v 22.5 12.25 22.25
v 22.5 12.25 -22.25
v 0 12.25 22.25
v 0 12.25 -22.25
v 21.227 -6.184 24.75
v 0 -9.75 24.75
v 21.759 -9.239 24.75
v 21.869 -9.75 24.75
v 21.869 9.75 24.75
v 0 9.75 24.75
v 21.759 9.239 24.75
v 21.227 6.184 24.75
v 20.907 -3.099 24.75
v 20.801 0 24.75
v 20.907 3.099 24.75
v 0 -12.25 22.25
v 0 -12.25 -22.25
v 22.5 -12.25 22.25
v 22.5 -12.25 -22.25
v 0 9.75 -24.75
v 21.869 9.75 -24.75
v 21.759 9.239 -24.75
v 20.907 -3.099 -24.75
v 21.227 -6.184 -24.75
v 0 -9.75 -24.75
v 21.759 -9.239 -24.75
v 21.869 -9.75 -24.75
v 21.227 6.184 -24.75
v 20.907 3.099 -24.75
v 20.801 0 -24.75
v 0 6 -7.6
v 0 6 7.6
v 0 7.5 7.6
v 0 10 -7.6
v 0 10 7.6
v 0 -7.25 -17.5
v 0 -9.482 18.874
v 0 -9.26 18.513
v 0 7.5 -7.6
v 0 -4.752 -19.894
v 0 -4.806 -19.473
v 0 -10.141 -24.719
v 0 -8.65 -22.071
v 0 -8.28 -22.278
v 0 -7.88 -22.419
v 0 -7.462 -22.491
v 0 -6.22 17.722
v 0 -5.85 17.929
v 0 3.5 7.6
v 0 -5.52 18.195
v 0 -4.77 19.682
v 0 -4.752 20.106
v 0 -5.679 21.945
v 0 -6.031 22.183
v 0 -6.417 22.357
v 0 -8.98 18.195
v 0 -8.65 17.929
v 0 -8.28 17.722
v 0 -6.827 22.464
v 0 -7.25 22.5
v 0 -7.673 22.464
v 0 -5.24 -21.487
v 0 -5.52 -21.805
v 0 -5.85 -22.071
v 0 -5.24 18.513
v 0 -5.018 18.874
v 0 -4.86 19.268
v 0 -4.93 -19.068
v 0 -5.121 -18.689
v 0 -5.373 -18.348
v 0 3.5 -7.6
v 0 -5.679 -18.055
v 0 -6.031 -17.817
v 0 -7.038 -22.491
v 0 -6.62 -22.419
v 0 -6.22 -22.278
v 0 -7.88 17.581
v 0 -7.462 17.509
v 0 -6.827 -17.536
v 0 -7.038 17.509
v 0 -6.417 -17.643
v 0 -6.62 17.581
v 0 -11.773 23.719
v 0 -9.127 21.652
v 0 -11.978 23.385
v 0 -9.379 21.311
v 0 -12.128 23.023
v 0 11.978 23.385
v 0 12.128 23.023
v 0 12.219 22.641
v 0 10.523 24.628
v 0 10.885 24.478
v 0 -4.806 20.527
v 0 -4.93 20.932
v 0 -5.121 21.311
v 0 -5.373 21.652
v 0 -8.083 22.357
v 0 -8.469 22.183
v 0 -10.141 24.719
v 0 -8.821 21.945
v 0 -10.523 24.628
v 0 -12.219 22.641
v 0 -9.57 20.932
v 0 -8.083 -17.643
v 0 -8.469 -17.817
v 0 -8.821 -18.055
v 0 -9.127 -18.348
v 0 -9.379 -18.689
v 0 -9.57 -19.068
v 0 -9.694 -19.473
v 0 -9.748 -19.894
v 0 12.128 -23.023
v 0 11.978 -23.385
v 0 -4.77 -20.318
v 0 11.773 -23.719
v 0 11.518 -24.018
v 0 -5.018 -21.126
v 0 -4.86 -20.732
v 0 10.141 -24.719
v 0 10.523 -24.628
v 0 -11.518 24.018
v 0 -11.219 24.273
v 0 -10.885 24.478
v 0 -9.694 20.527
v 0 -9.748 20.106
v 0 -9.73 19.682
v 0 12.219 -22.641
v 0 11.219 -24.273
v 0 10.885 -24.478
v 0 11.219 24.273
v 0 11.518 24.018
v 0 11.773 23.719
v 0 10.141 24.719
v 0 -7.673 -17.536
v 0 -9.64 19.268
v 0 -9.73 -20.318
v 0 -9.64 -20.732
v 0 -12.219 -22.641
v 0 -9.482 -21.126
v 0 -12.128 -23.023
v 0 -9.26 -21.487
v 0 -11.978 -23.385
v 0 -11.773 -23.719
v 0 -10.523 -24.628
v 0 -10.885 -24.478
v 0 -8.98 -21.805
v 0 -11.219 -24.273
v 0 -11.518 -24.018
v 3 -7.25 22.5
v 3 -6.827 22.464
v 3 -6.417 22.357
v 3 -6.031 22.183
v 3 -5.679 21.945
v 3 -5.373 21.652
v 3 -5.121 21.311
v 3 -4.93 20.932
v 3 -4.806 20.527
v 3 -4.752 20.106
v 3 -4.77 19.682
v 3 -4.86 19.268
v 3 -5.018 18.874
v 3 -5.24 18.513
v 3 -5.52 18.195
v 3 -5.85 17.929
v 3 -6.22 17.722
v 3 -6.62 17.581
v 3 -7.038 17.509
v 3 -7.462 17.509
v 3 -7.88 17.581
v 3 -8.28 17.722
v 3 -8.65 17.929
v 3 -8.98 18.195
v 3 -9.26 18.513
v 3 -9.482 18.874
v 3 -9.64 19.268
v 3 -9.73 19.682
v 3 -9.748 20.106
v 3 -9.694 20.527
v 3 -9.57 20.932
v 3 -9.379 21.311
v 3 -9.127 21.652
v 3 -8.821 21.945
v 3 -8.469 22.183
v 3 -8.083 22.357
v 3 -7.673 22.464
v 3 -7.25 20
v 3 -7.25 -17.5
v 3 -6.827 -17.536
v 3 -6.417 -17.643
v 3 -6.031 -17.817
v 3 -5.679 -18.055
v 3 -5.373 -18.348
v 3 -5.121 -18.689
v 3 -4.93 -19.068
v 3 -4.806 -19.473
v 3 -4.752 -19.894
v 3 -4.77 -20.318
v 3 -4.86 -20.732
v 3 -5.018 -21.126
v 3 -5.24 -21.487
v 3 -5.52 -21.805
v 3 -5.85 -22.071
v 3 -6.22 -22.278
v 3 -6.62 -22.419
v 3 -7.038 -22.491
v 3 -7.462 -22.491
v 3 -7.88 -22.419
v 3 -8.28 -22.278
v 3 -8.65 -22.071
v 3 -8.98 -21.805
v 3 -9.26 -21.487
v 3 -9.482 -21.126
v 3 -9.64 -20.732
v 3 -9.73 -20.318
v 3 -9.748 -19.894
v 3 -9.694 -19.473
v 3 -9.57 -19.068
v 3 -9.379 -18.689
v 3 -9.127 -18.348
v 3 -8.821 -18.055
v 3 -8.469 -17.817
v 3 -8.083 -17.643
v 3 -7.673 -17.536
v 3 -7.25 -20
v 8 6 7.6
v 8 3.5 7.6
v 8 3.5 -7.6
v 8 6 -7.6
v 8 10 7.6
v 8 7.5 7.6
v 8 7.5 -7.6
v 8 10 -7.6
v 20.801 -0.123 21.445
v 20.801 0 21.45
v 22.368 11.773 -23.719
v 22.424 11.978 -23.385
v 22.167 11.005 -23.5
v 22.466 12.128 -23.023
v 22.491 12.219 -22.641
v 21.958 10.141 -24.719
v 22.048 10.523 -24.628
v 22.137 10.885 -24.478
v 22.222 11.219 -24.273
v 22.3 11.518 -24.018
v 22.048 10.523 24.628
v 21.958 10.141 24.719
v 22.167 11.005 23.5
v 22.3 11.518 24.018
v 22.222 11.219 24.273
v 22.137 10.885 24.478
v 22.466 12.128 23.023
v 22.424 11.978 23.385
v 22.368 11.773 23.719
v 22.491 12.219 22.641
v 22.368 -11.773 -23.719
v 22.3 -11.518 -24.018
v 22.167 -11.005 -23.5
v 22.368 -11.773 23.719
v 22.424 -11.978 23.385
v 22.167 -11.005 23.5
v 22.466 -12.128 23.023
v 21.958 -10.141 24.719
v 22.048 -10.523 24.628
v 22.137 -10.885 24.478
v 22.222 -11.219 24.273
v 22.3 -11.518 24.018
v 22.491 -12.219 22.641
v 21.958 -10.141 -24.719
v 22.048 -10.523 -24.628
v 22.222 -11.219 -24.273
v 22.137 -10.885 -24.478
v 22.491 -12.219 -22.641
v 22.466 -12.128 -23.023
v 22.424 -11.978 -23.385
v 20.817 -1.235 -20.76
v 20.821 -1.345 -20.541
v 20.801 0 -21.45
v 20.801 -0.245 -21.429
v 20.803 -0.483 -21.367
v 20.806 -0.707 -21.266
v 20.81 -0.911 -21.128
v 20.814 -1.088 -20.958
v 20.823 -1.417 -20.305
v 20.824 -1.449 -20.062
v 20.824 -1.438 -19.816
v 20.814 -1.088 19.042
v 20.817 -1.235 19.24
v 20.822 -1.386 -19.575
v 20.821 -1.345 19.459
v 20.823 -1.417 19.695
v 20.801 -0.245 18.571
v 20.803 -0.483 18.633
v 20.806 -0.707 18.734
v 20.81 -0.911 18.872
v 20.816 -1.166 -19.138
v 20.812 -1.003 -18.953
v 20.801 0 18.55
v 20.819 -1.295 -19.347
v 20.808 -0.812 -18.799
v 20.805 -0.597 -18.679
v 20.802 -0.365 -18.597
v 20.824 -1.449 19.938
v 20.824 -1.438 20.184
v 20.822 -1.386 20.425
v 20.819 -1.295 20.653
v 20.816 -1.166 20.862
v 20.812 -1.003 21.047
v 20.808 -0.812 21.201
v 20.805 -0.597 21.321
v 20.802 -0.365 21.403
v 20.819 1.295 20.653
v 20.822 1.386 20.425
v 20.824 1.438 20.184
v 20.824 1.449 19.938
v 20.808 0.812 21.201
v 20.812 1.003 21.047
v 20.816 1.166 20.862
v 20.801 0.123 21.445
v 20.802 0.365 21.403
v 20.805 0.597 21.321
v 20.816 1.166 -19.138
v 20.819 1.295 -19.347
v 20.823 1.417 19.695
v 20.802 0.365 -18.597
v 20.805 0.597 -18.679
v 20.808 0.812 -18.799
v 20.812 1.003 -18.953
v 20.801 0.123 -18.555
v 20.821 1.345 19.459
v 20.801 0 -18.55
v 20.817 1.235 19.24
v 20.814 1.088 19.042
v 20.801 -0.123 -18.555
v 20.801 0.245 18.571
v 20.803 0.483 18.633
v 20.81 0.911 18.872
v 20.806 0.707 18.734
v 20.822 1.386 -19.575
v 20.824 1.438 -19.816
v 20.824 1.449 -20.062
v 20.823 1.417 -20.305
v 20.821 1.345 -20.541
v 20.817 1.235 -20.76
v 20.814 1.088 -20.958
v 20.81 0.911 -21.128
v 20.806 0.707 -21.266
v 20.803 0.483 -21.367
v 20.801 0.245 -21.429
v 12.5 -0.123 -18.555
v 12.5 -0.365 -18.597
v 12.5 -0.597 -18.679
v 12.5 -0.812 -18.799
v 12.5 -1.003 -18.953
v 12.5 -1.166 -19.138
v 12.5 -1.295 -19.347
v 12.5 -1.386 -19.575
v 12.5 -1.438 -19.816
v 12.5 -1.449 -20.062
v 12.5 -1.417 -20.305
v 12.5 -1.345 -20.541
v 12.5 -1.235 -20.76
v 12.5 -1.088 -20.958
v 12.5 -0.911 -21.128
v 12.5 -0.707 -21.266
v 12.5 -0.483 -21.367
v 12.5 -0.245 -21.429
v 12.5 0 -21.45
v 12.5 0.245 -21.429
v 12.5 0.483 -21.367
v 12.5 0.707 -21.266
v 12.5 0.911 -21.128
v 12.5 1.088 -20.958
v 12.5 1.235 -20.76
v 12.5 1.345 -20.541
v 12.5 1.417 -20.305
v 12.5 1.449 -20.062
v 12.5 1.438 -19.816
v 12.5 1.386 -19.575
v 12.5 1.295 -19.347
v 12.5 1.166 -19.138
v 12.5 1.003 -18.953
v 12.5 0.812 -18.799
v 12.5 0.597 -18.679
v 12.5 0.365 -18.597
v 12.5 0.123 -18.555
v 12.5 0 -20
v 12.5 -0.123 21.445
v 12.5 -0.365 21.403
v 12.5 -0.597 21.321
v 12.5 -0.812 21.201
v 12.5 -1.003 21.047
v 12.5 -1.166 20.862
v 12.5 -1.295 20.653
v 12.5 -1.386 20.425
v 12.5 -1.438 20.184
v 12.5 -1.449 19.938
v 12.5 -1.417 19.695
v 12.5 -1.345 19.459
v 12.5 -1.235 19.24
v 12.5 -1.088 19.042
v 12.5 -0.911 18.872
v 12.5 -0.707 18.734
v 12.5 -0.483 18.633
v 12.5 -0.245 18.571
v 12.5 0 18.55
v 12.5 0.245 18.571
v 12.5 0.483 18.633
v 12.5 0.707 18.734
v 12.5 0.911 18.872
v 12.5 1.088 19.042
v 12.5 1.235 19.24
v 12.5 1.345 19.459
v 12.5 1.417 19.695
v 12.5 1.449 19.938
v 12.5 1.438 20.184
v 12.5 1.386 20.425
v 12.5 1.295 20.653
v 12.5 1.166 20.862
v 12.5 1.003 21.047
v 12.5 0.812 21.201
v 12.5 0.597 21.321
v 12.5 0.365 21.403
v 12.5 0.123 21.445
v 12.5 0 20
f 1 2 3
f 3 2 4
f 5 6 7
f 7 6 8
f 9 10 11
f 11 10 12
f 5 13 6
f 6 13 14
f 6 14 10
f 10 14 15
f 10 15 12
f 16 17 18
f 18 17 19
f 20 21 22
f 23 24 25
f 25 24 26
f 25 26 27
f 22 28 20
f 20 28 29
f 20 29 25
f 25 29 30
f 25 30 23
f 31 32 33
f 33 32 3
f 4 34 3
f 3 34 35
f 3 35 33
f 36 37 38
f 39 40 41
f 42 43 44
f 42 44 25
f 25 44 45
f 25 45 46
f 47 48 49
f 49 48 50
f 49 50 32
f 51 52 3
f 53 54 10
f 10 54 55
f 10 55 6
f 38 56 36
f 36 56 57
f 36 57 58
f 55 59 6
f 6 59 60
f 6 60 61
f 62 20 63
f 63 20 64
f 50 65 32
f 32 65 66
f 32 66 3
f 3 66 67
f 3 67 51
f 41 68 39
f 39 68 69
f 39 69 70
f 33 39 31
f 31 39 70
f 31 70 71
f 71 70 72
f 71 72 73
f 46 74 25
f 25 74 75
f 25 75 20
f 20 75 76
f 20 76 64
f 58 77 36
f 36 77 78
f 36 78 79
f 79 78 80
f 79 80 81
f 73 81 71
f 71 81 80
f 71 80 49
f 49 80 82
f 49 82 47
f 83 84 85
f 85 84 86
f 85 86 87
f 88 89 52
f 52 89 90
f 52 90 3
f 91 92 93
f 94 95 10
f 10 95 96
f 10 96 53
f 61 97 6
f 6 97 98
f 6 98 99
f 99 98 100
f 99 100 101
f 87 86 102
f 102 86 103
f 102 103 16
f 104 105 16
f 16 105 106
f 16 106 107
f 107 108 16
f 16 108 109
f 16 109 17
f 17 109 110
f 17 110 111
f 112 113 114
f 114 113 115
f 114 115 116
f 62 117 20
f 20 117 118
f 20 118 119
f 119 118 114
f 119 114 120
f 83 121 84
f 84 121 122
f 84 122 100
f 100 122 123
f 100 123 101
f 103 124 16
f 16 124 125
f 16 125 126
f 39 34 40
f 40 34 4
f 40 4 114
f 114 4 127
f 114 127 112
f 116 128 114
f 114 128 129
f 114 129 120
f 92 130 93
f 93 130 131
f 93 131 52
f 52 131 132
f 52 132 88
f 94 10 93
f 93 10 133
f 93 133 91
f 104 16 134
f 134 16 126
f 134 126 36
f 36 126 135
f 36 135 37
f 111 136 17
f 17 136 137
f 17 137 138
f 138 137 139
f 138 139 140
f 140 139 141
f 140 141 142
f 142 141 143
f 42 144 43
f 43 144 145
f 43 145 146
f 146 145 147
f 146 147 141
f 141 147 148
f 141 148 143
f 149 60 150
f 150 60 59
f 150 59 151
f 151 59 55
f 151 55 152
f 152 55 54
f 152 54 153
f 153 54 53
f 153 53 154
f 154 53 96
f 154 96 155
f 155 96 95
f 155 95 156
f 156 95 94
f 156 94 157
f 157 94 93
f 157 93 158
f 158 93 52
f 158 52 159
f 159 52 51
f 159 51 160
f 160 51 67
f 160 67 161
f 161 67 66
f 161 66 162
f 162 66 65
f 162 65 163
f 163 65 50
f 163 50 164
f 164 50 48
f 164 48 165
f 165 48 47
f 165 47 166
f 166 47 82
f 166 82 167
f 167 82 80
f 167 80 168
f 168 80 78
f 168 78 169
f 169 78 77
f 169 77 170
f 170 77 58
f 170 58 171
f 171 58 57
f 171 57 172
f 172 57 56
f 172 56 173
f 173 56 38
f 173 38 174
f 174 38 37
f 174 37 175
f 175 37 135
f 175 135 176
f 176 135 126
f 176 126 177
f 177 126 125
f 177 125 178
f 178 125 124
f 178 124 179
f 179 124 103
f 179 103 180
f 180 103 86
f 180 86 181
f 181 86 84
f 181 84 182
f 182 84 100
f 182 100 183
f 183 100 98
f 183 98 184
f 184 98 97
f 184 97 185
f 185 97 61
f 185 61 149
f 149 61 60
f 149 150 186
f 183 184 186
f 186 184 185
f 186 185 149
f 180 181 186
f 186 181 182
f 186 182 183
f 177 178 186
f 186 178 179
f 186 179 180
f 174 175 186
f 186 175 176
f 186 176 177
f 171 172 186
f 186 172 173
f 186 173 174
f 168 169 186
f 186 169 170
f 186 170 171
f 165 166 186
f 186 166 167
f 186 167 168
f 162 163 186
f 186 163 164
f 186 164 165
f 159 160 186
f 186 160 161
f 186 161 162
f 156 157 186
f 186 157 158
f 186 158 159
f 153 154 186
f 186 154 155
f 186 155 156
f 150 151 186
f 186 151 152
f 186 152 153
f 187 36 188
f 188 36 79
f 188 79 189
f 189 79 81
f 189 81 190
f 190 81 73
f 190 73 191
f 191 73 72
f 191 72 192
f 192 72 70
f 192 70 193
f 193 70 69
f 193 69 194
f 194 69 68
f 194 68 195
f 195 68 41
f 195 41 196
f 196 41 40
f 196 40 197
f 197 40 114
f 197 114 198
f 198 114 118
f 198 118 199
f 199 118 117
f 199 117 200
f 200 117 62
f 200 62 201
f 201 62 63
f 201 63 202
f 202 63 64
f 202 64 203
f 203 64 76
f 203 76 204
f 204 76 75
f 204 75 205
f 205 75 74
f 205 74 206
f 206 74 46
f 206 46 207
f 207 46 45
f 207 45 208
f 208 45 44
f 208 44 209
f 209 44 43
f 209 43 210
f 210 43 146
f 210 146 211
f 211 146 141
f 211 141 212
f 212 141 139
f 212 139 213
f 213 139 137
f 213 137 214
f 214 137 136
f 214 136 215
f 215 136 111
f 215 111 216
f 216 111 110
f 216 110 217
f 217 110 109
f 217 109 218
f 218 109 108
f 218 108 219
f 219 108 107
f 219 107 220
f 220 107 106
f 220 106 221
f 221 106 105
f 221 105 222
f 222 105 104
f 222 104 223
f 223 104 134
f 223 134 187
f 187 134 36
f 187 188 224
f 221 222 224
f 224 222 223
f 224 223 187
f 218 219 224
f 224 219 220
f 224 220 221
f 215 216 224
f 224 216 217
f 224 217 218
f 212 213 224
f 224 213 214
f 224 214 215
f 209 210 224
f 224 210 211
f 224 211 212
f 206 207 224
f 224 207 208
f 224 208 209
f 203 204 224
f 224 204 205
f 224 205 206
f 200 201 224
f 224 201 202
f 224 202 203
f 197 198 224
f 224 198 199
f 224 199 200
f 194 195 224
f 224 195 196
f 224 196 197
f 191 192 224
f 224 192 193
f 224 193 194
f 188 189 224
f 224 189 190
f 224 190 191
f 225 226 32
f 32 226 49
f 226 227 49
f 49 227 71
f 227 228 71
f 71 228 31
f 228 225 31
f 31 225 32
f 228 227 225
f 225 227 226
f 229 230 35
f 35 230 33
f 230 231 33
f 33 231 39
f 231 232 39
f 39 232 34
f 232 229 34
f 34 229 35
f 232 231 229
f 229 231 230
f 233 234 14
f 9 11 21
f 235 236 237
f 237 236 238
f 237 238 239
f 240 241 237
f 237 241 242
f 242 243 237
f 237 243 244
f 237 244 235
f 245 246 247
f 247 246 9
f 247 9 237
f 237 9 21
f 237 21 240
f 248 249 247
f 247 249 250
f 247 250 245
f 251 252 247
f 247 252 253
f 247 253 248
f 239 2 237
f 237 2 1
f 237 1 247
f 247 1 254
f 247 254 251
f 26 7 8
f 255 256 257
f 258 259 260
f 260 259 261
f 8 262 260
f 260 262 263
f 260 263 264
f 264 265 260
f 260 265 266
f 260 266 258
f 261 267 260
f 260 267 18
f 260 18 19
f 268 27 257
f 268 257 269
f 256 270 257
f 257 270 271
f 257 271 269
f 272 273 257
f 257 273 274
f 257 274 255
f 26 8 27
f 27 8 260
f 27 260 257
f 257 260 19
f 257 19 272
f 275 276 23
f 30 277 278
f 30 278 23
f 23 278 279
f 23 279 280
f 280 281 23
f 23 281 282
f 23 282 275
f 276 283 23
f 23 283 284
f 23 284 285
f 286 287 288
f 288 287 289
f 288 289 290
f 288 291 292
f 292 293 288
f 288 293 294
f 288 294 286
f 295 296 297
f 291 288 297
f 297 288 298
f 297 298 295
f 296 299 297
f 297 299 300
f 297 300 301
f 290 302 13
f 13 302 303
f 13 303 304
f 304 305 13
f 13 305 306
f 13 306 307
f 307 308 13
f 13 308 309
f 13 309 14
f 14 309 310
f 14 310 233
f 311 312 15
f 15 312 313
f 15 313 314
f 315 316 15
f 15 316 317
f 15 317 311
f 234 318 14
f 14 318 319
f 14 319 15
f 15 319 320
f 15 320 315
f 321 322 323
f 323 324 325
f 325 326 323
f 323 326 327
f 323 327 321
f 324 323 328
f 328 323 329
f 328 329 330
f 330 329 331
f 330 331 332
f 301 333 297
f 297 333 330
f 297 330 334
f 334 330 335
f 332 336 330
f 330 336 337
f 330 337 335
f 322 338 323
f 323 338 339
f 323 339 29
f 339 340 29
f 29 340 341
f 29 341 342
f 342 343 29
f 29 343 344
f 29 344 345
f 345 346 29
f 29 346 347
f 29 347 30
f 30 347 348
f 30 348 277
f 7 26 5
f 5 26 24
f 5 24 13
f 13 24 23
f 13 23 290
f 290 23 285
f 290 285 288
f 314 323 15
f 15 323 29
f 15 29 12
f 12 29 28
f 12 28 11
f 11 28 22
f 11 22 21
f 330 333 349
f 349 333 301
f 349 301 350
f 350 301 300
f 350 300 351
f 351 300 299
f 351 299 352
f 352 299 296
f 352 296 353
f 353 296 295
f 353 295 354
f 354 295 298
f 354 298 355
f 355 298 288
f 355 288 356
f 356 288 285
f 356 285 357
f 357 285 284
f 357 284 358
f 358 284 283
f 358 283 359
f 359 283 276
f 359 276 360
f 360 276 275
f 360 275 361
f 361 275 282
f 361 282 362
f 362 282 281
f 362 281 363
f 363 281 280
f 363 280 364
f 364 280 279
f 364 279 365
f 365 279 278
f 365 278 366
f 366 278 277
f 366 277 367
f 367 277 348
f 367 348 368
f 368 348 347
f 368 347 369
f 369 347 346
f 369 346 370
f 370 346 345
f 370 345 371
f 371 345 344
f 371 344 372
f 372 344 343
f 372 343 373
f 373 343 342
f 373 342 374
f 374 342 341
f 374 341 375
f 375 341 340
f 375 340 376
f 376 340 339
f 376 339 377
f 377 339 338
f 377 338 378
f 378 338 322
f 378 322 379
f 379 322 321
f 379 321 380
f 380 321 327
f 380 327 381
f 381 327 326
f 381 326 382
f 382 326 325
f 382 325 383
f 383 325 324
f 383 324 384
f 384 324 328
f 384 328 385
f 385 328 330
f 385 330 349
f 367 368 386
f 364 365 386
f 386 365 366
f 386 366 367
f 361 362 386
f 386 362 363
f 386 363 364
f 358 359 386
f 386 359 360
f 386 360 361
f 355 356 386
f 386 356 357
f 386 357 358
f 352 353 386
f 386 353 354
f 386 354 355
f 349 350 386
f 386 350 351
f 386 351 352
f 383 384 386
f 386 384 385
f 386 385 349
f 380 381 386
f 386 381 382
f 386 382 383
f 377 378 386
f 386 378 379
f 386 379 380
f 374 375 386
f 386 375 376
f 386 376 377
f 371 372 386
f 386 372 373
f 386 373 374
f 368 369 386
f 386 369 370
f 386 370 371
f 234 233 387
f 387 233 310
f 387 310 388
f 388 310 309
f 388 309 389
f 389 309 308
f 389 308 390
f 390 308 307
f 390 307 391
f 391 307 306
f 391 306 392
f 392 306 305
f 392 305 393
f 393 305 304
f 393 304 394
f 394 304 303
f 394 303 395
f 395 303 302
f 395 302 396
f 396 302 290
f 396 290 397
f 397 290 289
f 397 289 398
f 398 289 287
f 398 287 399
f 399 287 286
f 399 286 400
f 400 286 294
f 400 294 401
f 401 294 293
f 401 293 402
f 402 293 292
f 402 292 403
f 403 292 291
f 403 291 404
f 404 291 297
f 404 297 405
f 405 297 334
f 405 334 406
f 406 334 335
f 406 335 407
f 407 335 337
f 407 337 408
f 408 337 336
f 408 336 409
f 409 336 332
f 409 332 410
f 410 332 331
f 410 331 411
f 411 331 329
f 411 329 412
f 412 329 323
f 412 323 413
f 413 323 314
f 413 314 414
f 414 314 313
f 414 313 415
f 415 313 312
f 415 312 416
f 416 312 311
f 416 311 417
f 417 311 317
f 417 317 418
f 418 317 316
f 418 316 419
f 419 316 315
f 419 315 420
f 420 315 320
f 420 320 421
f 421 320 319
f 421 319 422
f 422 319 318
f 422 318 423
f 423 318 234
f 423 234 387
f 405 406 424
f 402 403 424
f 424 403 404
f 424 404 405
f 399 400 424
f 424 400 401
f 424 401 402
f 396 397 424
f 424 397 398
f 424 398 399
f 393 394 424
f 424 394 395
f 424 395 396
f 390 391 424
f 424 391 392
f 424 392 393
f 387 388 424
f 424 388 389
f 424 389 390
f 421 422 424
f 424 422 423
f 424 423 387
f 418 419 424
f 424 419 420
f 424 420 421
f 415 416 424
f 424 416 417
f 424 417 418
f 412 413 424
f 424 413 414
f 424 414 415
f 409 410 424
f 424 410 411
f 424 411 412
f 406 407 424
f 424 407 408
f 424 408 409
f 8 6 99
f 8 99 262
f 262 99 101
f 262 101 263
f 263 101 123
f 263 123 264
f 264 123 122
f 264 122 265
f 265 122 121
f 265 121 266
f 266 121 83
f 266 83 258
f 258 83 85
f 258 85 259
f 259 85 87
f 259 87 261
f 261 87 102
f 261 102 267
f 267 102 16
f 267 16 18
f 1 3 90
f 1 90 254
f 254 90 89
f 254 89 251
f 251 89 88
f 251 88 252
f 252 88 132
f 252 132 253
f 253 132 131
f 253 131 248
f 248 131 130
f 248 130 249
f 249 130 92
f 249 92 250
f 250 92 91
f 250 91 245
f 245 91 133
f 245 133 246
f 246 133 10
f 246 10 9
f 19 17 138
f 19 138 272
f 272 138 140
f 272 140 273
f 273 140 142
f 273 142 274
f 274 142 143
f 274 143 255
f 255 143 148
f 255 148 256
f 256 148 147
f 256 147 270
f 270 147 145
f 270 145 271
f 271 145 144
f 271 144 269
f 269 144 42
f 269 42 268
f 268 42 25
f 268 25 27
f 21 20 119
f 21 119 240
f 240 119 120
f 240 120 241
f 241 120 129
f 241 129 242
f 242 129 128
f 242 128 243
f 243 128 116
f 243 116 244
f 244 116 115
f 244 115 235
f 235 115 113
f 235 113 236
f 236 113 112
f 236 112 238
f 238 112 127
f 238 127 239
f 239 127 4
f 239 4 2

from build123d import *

# Parameters (mm, degrees)
SKETCH_1_W          = 49.5
SKETCH_1_H          = 24.5
EXTRUDE_1_DEPTH     = 22.5
SKETCH_2_R          = 2.5
CUT_EXTRUDE_1_DEPTH = 3
SKETCH_3_W          = 15.2
SKETCH_3_H          = 2.5
CUT_EXTRUDE_2_DEPTH = 8
CUT_EXTRUDE_3_DEPTH = 50
CUT_EXTRUDE_START   = 22.5
SKETCH_5_R          = 1.45
CUT_EXTRUDE_4_DEPTH = 10
FILLET_1_R          = 2.5


with BuildPart() as part:
    # Эскиз1 → Бобышка-Вытянуть1 (new body)
    with BuildSketch(Plane(origin=(0, 0, 0), x_dir=(0, 0, -1), z_dir=(1, 0, 0))):
        Rectangle(SKETCH_1_W, SKETCH_1_H)
    extrude(amount=EXTRUDE_1_DEPTH)

    # Эскиз2 → Вырез-Вытянуть1 (cut)
    with BuildSketch(Plane.ZY):
        with Locations((-20, -7.25)):
            Circle(SKETCH_2_R)
        with Locations((20, -7.25)):
            Circle(SKETCH_2_R)
    extrude(amount=-CUT_EXTRUDE_1_DEPTH, mode=Mode.SUBTRACT)

    # Эскиз3 → Вырез-Вытянуть2 (cut)
    with BuildSketch(Plane.ZY):
        with Locations((0, 4.75)):
            Rectangle(SKETCH_3_W, SKETCH_3_H)
        with Locations((0, 8.75)):
            Rectangle(SKETCH_3_W, SKETCH_3_H)
    extrude(amount=-CUT_EXTRUDE_2_DEPTH, mode=Mode.SUBTRACT)

    # Эскиз4 → Вырез-Вытянуть3 (cut)
    with BuildSketch(Plane(origin=(0, 0, -24.75), x_dir=(-1, 0, 0), z_dir=(0, 0, -1))):
        with BuildLine():
            Line((-22.5, 12.25), (-22.5, -12.25))
            ThreePointArc((-22.5, -12.25), (-20.800548495, 0), (-22.5, 12.25))
        make_face()
    extrude(amount=-CUT_EXTRUDE_3_DEPTH, mode=Mode.SUBTRACT)

    # Эскиз5 → Вырез-Вытянуть4 (cut)
    with BuildSketch(Plane(origin=(0, 0, 0), x_dir=(0, 0, -1), z_dir=(1, 0, 0)).offset(CUT_EXTRUDE_START)):
        with Locations((-20, 0)):
            Circle(SKETCH_5_R)
        with Locations((20, 0)):
            Circle(SKETCH_5_R)
    extrude(amount=-CUT_EXTRUDE_4_DEPTH, mode=Mode.SUBTRACT)

    # Скругление1
    fillet_1_edges = [part.edges().sort_by_distance(p)[0] for p in [
        (11.25, 12.25, -24.75),
        (11.25, -12.25, -24.75),
        (11.25, -12.25, 24.75),
        (11.25, 12.25, 24.75),
    ]]
    fillet(fillet_1_edges, radius=FILLET_1_R)


solid = part.part
